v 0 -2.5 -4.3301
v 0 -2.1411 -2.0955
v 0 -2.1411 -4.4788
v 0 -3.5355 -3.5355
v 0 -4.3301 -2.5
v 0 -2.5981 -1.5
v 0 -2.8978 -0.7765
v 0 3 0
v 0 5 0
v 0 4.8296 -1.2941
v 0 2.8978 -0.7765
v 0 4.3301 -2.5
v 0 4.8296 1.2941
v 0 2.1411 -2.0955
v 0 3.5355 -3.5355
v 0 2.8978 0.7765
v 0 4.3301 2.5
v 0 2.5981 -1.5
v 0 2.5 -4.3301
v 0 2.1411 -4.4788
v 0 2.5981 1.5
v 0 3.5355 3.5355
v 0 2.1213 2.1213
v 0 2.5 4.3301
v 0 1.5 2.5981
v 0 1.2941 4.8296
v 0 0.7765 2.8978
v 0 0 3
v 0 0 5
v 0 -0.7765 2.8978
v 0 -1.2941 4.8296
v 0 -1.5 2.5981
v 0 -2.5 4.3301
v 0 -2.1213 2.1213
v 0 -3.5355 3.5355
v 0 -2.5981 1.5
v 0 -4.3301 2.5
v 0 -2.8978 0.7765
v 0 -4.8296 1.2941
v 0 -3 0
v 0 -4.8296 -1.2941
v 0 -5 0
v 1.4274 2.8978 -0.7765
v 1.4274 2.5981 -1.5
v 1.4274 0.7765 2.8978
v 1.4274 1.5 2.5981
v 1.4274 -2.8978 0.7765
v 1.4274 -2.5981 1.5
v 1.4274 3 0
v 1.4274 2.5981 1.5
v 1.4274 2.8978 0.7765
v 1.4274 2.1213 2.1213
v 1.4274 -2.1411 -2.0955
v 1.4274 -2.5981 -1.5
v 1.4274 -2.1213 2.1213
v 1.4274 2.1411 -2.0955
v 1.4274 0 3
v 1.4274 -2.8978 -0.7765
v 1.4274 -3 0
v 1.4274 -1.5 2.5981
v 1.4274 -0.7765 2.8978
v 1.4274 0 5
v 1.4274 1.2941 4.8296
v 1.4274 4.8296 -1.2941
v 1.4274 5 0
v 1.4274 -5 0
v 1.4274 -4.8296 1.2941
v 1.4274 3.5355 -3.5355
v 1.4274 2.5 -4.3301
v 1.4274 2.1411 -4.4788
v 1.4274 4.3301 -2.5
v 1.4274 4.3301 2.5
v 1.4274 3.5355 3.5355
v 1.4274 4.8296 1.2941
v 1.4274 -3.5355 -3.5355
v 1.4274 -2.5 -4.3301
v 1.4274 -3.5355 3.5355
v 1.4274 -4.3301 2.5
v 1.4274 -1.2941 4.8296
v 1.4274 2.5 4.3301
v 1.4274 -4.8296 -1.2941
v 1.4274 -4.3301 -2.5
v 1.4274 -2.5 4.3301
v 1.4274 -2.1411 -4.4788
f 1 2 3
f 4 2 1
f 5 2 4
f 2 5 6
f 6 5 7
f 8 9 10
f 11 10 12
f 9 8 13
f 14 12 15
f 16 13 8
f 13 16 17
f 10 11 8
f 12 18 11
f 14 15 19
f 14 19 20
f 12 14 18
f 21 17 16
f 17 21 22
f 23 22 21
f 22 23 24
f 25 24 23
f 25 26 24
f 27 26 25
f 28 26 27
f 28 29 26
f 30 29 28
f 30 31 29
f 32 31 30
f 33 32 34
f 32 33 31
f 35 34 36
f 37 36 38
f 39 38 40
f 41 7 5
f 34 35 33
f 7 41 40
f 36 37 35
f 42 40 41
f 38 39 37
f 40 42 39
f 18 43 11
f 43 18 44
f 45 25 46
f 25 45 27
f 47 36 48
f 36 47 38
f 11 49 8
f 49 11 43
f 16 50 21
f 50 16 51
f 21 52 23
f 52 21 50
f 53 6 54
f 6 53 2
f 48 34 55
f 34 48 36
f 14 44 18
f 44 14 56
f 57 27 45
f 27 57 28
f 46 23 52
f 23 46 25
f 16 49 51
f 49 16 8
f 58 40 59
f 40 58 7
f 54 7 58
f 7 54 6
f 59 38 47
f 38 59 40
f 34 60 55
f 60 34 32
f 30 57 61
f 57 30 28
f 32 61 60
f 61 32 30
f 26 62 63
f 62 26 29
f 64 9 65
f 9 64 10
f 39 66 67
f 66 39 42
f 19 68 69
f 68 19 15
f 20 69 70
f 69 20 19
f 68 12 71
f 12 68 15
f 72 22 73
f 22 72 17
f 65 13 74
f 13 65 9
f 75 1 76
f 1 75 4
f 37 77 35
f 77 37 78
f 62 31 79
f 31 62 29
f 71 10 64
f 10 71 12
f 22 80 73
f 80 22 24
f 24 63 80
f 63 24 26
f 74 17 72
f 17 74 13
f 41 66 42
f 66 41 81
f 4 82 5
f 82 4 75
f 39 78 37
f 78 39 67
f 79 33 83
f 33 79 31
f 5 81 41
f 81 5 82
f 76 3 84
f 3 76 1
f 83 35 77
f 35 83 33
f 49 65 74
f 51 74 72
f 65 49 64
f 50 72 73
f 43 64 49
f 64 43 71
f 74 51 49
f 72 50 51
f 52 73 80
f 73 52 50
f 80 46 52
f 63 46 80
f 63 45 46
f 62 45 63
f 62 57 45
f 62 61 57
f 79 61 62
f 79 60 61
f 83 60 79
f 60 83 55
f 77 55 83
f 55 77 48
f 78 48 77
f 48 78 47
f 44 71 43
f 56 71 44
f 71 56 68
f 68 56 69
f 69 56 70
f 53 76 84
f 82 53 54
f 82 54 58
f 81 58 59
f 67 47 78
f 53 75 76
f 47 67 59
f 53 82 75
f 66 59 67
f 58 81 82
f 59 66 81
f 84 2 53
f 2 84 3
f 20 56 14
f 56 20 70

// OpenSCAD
// file: ../build_environments.scad
// build_environments.scad: modules to build level sections
//

module pool(diameter=10.0, wall_height=2.0, step_width=3.0, connections=[])
{
    difference() {
        union() {
        difference() {
            cylinder(h=0.5,r1=diameter+step_width,r2=diameter+step_width,$fn=48);
            translate([0,0,-0.1])
                cylinder(h=0.7,r1=diameter,r2=diameter,$fn=48);
        }
        difference() {
            cylinder(h=wall_height,r1=diameter+step_width+1.0,r2=diameter+step_width+1.0,$fn=48);
            translate([0,0,-0.1])
                cylinder(h=wall_height+0.2,r1=diameter+step_width,r2=diameter+step_width,$fn=48);
        }
        }
    
        for (c = connections)
        {
            rotate([0,90,0]) {
                angle = atan2(c[1],c[0]);
                rotate([-angle,0,0]) {
                    cylinder(h=diameter+5.0,r1=c[2],r2=c[2],$fn=48);
                }
            }
        }
    }
}

module straight(length=10.0, width=2.0, dy1=0.0, dy2=0.0, dz=0.0)
{
    dims = [0, 0, 0, 0, 0, (dz/length)];
    matrix = [
        [ 1, dims[0], dims[1], 0 ],
        [ dims[2], 1, dims[4], 0 ],
        [ dims[5], dims[3], 1, 0 ],
        [ 0, 0, 0, 1 ]
    ];
    multmatrix(matrix)
    difference() {
        translate([dy1,0,0])
        union() {
            rotate([0,90,0]) {
                difference() {
                    cylinder(h=(length-dy1-dy2),r1=width+1.0,r2=width+1.0,$fn=24);
                    translate([0,0,-0.1])
                        cylinder(h=(length-dy1-dy2+0.2),r1=width,r2=width,$fn=24);
                }
                difference() {
                    cylinder(h=1.0,r1=width+2.0,r2=width+2.0,$fn=24);
                    translate([0,0,-0.1])
                        cylinder(h=1.2,r1=width,r2=width,$fn=24);
                }
                translate([0,0,(length-dy1-dy2)-1.0]) {
                    difference() {
                        cylinder(h=1.0,r1=width+2.0,r2=width+2.0,$fn=24);
                        translate([0,0,-0.1])
                            cylinder(h=1.2,r1=width,r2=width,$fn=24);
                    }
                }
            }
        }
        translate([0,0,-(2*width+4.0)/2])
            cube([3*length,3*length,2*width+4.0],center=true);
    }
}

module curve(p0=[0,0], center=[0,0], dir=1, angle=0.0, width=2.0)
{
    radius = sqrt((p0[0]-center[0])*(p0[0]-center[0]) + (p0[1]-center[1])*(p0[1]-center[1]));
    if (dir == 0) {
        difference() {
            rotate([0,0,-90])
            difference() {
                rotate_extrude(angle = angle, convexity = 10, $fn=32)
                    translate([radius, 0, 0])
                        circle(r = width+1.0,$fn=24);
                rotate([0,0,-1.0])
                    rotate_extrude(angle = angle+2.0, convexity = 10, $fn=32)
                        translate([radius, 0, 0])
                            circle(r = width,$fn=24);
            }
            translate([0,0,-(2*width+4.0)/2])
                cube([5*radius,5*radius,2*width+4.0],center=true);
        }
    }
    else {
        difference() {
            rotate([0,0,90])
            difference() {
                rotate_extrude(angle = -angle, convexity = 10, $fn=32)
                    translate([radius, 0, 0])
                        circle(r = width+1.0,$fn=24);
                rotate([0,0,1.0])
                    rotate_extrude(angle = -angle-2.0, convexity = 10, $fn=32)
                        translate([radius, 0, 0])
                            circle(r = width,$fn=24);
            }
            translate([0,0,-(2*width+4.0)/2])
                cube([5*radius,5*radius,2*width+4.0],center=true);
        }
    }

}

// test pool
//pool(diameter=12.0000, wall_height=3.0000, step_width=3.0000, connections=[[0.0000,-26.0000,2.0000], [23.6074,0.0000,2.0000]]);

// test straight, slope
//straight(length=26.0000, width=2.0000, dy1=11.8322, dy2=6.7082, dz=0.0000);
//straight(length=29.1549, width=12.0000, dy1=0.0000, dy2=0.0000, dz=-15.0000);

// test curve
//curve(p0=[23.6074, 0.0000], center=[23.6074, 5.0000], dir=0, angle=60.1011, width=2.0000);
//curve(p0=[33.6426, 12.4219], center=[37.9771, 9.9295], dir=1, angle=120.4627, width=2.0000);
// main file
use <../build_environments.scad>;
straight(length=1.4274, width=3.0000, dy1=0.0000, dy2=0.0000, dz=0.0000);
